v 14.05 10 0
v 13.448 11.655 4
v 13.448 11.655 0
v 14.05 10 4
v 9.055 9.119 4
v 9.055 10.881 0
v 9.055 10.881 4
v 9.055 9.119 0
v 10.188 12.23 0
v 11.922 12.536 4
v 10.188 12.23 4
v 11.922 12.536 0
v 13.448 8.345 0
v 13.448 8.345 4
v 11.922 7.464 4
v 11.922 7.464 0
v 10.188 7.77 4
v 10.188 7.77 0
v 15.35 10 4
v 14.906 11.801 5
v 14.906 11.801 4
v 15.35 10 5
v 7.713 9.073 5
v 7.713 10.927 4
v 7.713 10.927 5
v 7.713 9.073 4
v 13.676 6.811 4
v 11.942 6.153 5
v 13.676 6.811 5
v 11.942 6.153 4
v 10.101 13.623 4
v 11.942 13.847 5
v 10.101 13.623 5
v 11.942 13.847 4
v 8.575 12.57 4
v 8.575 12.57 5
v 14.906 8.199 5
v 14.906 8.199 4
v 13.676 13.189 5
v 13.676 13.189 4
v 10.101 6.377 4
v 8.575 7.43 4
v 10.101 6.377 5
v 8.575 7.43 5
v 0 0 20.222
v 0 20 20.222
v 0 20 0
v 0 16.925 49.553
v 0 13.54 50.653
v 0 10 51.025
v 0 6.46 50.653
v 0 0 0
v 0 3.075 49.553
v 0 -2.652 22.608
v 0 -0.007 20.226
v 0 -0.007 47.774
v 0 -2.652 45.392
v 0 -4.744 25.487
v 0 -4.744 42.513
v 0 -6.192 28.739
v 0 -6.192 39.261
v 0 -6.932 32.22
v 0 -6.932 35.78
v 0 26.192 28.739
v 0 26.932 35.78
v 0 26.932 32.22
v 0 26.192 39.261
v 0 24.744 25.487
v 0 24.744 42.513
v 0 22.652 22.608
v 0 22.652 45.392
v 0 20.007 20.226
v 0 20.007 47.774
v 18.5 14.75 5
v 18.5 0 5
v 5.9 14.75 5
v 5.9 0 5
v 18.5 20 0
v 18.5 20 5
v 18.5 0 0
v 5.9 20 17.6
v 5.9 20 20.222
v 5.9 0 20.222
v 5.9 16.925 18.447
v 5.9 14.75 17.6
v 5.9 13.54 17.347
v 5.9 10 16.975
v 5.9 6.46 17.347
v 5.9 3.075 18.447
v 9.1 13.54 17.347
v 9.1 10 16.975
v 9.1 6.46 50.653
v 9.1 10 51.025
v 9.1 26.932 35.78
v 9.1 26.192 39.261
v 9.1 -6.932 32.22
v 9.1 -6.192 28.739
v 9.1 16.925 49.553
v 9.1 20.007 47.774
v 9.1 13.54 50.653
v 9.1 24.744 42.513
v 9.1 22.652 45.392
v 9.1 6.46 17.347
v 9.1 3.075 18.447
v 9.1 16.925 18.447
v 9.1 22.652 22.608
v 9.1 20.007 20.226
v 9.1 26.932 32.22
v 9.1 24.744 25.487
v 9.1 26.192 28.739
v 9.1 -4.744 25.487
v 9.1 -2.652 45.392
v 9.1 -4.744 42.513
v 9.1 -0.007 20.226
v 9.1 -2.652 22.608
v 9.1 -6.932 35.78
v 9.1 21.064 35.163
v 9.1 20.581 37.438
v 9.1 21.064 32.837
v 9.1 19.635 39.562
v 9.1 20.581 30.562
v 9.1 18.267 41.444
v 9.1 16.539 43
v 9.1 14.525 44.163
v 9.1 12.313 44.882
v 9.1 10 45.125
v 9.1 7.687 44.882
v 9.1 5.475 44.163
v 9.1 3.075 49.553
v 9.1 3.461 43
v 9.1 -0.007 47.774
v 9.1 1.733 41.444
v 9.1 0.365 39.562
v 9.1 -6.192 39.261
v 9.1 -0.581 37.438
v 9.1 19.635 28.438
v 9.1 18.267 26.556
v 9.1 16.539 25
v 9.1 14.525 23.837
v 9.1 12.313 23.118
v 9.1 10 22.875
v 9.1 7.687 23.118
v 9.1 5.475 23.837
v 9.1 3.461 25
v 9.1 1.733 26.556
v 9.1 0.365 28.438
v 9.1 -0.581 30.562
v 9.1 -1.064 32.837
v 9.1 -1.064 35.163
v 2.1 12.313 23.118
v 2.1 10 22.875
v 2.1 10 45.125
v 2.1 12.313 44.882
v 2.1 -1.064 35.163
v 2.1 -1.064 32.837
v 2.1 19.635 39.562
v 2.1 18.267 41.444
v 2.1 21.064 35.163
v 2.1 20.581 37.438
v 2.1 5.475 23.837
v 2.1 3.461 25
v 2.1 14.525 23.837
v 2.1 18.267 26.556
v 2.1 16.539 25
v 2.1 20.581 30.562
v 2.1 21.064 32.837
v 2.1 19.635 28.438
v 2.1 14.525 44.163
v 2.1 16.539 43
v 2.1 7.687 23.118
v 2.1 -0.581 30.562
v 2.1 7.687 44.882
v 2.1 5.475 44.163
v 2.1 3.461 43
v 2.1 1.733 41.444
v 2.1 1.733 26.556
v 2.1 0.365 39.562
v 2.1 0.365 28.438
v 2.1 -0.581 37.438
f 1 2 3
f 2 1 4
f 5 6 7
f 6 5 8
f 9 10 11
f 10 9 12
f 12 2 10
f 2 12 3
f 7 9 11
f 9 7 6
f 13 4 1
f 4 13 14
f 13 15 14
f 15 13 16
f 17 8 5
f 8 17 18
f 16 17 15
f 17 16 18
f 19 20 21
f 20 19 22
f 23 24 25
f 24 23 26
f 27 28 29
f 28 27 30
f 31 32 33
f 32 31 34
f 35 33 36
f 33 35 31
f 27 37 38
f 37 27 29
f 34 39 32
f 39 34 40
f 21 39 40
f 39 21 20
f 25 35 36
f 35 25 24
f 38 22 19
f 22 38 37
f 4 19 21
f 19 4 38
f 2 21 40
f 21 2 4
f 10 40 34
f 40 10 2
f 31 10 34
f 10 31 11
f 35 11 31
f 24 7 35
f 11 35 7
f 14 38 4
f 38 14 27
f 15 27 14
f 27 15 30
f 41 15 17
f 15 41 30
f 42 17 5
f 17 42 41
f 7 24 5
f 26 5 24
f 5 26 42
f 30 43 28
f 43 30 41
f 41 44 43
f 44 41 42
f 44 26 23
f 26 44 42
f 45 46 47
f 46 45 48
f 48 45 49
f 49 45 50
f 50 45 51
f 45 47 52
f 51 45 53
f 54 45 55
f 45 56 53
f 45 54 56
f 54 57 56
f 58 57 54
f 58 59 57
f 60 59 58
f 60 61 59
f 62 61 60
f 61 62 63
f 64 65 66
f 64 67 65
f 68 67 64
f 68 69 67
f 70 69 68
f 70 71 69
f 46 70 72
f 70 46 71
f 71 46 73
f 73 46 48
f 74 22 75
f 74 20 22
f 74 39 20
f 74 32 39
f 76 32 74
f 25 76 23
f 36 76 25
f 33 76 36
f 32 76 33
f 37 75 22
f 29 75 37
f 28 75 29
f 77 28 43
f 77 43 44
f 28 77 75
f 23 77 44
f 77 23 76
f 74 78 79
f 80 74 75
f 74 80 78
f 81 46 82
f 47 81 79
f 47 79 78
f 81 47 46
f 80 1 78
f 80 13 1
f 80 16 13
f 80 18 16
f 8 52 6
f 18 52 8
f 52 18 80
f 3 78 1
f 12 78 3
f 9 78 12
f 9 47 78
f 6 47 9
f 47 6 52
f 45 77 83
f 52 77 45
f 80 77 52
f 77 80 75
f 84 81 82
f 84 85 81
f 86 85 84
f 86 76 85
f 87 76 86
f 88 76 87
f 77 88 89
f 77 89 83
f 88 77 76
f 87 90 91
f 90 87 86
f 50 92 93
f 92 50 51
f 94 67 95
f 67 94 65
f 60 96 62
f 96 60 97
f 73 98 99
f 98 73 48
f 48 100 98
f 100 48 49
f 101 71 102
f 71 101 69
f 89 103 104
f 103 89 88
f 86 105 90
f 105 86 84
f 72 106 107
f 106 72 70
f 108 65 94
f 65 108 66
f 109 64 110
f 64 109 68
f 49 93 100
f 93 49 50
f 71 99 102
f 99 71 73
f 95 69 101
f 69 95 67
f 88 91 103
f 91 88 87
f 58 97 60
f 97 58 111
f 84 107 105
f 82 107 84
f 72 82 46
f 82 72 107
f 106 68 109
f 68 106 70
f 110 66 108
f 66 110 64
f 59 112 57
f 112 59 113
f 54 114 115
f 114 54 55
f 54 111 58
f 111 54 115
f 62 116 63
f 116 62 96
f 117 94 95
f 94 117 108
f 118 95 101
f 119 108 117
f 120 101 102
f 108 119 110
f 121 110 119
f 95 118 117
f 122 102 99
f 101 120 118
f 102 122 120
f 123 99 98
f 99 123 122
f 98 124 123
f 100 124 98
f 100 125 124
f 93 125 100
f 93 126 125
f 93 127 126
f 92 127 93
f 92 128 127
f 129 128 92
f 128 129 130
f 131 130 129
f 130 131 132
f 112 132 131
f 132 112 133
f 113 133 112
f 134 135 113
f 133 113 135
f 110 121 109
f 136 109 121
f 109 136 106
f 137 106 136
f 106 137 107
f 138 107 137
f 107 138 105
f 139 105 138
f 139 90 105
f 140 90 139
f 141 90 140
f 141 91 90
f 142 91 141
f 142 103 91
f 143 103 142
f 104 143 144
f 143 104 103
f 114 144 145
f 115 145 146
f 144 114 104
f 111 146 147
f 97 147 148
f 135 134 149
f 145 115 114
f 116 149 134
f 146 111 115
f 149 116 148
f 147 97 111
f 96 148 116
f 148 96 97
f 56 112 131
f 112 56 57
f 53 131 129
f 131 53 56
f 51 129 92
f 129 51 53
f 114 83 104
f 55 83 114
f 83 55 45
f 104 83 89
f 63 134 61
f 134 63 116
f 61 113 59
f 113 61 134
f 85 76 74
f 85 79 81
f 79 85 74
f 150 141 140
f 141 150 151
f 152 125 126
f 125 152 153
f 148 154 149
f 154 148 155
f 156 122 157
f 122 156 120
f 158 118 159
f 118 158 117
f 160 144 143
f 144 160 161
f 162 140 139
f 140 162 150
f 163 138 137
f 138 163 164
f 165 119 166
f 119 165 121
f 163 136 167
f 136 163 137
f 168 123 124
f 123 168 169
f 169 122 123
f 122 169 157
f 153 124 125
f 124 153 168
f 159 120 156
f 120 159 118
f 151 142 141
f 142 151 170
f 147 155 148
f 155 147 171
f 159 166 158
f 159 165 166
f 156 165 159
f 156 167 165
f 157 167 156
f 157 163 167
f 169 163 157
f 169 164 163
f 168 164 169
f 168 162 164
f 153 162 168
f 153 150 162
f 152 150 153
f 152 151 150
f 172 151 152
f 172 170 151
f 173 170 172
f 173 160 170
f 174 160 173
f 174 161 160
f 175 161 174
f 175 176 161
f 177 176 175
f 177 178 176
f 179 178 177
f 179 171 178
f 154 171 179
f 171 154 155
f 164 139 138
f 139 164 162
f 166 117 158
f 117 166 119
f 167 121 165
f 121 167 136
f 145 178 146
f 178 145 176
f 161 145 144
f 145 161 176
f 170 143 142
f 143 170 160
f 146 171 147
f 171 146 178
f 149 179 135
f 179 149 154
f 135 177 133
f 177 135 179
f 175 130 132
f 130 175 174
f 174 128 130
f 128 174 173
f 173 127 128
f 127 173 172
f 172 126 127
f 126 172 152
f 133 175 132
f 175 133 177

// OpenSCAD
w=20;
length=18.5;
base_h=5;
through_hole_d=5.15;
filament_h=34;
counterbore_d=7.75;
counterbore_h=1;
arm_t=5.9;
gusset_w=5.25;
bearing_d=22.25;
through_hole_x=8.9; // distance from back to edge of through_hole
epsilon=0.01;
bearing_wall_t=2.1;
bearing_t=7;

through_hole_center=[through_hole_x+through_hole_d/2, w/2];


module add() {
    // base
    cube([length, w, base_h]);
    // arm
    cube([arm_t, w, filament_h]);
    translate([0, w/2, filament_h]) rotate([0,90,0]) cylinder(h=bearing_t+bearing_wall_t, d=bearing_d+arm_t*2);
    // gusset
    translate([0,w-gusset_w,base_h]) rotate([-90, -90]) linear_extrude(gusset_w) polygon([[0,0], [length, 0], [0, length]]);
    
}
    
difference() {
    
    add();
    // through hole
    translate(through_hole_center) {
        translate([0,0,-epsilon]) cylinder(h=base_h+epsilon*2, d=through_hole_d);
        translate([0,0,base_h-counterbore_h]) cylinder(h=counterbore_h+epsilon, d=counterbore_d);
    }
    // bearing pocket
    translate([bearing_wall_t,w/2,filament_h]) rotate([0,90,0]) cylinder(h=bearing_t+epsilon, d=bearing_d);
    
}
